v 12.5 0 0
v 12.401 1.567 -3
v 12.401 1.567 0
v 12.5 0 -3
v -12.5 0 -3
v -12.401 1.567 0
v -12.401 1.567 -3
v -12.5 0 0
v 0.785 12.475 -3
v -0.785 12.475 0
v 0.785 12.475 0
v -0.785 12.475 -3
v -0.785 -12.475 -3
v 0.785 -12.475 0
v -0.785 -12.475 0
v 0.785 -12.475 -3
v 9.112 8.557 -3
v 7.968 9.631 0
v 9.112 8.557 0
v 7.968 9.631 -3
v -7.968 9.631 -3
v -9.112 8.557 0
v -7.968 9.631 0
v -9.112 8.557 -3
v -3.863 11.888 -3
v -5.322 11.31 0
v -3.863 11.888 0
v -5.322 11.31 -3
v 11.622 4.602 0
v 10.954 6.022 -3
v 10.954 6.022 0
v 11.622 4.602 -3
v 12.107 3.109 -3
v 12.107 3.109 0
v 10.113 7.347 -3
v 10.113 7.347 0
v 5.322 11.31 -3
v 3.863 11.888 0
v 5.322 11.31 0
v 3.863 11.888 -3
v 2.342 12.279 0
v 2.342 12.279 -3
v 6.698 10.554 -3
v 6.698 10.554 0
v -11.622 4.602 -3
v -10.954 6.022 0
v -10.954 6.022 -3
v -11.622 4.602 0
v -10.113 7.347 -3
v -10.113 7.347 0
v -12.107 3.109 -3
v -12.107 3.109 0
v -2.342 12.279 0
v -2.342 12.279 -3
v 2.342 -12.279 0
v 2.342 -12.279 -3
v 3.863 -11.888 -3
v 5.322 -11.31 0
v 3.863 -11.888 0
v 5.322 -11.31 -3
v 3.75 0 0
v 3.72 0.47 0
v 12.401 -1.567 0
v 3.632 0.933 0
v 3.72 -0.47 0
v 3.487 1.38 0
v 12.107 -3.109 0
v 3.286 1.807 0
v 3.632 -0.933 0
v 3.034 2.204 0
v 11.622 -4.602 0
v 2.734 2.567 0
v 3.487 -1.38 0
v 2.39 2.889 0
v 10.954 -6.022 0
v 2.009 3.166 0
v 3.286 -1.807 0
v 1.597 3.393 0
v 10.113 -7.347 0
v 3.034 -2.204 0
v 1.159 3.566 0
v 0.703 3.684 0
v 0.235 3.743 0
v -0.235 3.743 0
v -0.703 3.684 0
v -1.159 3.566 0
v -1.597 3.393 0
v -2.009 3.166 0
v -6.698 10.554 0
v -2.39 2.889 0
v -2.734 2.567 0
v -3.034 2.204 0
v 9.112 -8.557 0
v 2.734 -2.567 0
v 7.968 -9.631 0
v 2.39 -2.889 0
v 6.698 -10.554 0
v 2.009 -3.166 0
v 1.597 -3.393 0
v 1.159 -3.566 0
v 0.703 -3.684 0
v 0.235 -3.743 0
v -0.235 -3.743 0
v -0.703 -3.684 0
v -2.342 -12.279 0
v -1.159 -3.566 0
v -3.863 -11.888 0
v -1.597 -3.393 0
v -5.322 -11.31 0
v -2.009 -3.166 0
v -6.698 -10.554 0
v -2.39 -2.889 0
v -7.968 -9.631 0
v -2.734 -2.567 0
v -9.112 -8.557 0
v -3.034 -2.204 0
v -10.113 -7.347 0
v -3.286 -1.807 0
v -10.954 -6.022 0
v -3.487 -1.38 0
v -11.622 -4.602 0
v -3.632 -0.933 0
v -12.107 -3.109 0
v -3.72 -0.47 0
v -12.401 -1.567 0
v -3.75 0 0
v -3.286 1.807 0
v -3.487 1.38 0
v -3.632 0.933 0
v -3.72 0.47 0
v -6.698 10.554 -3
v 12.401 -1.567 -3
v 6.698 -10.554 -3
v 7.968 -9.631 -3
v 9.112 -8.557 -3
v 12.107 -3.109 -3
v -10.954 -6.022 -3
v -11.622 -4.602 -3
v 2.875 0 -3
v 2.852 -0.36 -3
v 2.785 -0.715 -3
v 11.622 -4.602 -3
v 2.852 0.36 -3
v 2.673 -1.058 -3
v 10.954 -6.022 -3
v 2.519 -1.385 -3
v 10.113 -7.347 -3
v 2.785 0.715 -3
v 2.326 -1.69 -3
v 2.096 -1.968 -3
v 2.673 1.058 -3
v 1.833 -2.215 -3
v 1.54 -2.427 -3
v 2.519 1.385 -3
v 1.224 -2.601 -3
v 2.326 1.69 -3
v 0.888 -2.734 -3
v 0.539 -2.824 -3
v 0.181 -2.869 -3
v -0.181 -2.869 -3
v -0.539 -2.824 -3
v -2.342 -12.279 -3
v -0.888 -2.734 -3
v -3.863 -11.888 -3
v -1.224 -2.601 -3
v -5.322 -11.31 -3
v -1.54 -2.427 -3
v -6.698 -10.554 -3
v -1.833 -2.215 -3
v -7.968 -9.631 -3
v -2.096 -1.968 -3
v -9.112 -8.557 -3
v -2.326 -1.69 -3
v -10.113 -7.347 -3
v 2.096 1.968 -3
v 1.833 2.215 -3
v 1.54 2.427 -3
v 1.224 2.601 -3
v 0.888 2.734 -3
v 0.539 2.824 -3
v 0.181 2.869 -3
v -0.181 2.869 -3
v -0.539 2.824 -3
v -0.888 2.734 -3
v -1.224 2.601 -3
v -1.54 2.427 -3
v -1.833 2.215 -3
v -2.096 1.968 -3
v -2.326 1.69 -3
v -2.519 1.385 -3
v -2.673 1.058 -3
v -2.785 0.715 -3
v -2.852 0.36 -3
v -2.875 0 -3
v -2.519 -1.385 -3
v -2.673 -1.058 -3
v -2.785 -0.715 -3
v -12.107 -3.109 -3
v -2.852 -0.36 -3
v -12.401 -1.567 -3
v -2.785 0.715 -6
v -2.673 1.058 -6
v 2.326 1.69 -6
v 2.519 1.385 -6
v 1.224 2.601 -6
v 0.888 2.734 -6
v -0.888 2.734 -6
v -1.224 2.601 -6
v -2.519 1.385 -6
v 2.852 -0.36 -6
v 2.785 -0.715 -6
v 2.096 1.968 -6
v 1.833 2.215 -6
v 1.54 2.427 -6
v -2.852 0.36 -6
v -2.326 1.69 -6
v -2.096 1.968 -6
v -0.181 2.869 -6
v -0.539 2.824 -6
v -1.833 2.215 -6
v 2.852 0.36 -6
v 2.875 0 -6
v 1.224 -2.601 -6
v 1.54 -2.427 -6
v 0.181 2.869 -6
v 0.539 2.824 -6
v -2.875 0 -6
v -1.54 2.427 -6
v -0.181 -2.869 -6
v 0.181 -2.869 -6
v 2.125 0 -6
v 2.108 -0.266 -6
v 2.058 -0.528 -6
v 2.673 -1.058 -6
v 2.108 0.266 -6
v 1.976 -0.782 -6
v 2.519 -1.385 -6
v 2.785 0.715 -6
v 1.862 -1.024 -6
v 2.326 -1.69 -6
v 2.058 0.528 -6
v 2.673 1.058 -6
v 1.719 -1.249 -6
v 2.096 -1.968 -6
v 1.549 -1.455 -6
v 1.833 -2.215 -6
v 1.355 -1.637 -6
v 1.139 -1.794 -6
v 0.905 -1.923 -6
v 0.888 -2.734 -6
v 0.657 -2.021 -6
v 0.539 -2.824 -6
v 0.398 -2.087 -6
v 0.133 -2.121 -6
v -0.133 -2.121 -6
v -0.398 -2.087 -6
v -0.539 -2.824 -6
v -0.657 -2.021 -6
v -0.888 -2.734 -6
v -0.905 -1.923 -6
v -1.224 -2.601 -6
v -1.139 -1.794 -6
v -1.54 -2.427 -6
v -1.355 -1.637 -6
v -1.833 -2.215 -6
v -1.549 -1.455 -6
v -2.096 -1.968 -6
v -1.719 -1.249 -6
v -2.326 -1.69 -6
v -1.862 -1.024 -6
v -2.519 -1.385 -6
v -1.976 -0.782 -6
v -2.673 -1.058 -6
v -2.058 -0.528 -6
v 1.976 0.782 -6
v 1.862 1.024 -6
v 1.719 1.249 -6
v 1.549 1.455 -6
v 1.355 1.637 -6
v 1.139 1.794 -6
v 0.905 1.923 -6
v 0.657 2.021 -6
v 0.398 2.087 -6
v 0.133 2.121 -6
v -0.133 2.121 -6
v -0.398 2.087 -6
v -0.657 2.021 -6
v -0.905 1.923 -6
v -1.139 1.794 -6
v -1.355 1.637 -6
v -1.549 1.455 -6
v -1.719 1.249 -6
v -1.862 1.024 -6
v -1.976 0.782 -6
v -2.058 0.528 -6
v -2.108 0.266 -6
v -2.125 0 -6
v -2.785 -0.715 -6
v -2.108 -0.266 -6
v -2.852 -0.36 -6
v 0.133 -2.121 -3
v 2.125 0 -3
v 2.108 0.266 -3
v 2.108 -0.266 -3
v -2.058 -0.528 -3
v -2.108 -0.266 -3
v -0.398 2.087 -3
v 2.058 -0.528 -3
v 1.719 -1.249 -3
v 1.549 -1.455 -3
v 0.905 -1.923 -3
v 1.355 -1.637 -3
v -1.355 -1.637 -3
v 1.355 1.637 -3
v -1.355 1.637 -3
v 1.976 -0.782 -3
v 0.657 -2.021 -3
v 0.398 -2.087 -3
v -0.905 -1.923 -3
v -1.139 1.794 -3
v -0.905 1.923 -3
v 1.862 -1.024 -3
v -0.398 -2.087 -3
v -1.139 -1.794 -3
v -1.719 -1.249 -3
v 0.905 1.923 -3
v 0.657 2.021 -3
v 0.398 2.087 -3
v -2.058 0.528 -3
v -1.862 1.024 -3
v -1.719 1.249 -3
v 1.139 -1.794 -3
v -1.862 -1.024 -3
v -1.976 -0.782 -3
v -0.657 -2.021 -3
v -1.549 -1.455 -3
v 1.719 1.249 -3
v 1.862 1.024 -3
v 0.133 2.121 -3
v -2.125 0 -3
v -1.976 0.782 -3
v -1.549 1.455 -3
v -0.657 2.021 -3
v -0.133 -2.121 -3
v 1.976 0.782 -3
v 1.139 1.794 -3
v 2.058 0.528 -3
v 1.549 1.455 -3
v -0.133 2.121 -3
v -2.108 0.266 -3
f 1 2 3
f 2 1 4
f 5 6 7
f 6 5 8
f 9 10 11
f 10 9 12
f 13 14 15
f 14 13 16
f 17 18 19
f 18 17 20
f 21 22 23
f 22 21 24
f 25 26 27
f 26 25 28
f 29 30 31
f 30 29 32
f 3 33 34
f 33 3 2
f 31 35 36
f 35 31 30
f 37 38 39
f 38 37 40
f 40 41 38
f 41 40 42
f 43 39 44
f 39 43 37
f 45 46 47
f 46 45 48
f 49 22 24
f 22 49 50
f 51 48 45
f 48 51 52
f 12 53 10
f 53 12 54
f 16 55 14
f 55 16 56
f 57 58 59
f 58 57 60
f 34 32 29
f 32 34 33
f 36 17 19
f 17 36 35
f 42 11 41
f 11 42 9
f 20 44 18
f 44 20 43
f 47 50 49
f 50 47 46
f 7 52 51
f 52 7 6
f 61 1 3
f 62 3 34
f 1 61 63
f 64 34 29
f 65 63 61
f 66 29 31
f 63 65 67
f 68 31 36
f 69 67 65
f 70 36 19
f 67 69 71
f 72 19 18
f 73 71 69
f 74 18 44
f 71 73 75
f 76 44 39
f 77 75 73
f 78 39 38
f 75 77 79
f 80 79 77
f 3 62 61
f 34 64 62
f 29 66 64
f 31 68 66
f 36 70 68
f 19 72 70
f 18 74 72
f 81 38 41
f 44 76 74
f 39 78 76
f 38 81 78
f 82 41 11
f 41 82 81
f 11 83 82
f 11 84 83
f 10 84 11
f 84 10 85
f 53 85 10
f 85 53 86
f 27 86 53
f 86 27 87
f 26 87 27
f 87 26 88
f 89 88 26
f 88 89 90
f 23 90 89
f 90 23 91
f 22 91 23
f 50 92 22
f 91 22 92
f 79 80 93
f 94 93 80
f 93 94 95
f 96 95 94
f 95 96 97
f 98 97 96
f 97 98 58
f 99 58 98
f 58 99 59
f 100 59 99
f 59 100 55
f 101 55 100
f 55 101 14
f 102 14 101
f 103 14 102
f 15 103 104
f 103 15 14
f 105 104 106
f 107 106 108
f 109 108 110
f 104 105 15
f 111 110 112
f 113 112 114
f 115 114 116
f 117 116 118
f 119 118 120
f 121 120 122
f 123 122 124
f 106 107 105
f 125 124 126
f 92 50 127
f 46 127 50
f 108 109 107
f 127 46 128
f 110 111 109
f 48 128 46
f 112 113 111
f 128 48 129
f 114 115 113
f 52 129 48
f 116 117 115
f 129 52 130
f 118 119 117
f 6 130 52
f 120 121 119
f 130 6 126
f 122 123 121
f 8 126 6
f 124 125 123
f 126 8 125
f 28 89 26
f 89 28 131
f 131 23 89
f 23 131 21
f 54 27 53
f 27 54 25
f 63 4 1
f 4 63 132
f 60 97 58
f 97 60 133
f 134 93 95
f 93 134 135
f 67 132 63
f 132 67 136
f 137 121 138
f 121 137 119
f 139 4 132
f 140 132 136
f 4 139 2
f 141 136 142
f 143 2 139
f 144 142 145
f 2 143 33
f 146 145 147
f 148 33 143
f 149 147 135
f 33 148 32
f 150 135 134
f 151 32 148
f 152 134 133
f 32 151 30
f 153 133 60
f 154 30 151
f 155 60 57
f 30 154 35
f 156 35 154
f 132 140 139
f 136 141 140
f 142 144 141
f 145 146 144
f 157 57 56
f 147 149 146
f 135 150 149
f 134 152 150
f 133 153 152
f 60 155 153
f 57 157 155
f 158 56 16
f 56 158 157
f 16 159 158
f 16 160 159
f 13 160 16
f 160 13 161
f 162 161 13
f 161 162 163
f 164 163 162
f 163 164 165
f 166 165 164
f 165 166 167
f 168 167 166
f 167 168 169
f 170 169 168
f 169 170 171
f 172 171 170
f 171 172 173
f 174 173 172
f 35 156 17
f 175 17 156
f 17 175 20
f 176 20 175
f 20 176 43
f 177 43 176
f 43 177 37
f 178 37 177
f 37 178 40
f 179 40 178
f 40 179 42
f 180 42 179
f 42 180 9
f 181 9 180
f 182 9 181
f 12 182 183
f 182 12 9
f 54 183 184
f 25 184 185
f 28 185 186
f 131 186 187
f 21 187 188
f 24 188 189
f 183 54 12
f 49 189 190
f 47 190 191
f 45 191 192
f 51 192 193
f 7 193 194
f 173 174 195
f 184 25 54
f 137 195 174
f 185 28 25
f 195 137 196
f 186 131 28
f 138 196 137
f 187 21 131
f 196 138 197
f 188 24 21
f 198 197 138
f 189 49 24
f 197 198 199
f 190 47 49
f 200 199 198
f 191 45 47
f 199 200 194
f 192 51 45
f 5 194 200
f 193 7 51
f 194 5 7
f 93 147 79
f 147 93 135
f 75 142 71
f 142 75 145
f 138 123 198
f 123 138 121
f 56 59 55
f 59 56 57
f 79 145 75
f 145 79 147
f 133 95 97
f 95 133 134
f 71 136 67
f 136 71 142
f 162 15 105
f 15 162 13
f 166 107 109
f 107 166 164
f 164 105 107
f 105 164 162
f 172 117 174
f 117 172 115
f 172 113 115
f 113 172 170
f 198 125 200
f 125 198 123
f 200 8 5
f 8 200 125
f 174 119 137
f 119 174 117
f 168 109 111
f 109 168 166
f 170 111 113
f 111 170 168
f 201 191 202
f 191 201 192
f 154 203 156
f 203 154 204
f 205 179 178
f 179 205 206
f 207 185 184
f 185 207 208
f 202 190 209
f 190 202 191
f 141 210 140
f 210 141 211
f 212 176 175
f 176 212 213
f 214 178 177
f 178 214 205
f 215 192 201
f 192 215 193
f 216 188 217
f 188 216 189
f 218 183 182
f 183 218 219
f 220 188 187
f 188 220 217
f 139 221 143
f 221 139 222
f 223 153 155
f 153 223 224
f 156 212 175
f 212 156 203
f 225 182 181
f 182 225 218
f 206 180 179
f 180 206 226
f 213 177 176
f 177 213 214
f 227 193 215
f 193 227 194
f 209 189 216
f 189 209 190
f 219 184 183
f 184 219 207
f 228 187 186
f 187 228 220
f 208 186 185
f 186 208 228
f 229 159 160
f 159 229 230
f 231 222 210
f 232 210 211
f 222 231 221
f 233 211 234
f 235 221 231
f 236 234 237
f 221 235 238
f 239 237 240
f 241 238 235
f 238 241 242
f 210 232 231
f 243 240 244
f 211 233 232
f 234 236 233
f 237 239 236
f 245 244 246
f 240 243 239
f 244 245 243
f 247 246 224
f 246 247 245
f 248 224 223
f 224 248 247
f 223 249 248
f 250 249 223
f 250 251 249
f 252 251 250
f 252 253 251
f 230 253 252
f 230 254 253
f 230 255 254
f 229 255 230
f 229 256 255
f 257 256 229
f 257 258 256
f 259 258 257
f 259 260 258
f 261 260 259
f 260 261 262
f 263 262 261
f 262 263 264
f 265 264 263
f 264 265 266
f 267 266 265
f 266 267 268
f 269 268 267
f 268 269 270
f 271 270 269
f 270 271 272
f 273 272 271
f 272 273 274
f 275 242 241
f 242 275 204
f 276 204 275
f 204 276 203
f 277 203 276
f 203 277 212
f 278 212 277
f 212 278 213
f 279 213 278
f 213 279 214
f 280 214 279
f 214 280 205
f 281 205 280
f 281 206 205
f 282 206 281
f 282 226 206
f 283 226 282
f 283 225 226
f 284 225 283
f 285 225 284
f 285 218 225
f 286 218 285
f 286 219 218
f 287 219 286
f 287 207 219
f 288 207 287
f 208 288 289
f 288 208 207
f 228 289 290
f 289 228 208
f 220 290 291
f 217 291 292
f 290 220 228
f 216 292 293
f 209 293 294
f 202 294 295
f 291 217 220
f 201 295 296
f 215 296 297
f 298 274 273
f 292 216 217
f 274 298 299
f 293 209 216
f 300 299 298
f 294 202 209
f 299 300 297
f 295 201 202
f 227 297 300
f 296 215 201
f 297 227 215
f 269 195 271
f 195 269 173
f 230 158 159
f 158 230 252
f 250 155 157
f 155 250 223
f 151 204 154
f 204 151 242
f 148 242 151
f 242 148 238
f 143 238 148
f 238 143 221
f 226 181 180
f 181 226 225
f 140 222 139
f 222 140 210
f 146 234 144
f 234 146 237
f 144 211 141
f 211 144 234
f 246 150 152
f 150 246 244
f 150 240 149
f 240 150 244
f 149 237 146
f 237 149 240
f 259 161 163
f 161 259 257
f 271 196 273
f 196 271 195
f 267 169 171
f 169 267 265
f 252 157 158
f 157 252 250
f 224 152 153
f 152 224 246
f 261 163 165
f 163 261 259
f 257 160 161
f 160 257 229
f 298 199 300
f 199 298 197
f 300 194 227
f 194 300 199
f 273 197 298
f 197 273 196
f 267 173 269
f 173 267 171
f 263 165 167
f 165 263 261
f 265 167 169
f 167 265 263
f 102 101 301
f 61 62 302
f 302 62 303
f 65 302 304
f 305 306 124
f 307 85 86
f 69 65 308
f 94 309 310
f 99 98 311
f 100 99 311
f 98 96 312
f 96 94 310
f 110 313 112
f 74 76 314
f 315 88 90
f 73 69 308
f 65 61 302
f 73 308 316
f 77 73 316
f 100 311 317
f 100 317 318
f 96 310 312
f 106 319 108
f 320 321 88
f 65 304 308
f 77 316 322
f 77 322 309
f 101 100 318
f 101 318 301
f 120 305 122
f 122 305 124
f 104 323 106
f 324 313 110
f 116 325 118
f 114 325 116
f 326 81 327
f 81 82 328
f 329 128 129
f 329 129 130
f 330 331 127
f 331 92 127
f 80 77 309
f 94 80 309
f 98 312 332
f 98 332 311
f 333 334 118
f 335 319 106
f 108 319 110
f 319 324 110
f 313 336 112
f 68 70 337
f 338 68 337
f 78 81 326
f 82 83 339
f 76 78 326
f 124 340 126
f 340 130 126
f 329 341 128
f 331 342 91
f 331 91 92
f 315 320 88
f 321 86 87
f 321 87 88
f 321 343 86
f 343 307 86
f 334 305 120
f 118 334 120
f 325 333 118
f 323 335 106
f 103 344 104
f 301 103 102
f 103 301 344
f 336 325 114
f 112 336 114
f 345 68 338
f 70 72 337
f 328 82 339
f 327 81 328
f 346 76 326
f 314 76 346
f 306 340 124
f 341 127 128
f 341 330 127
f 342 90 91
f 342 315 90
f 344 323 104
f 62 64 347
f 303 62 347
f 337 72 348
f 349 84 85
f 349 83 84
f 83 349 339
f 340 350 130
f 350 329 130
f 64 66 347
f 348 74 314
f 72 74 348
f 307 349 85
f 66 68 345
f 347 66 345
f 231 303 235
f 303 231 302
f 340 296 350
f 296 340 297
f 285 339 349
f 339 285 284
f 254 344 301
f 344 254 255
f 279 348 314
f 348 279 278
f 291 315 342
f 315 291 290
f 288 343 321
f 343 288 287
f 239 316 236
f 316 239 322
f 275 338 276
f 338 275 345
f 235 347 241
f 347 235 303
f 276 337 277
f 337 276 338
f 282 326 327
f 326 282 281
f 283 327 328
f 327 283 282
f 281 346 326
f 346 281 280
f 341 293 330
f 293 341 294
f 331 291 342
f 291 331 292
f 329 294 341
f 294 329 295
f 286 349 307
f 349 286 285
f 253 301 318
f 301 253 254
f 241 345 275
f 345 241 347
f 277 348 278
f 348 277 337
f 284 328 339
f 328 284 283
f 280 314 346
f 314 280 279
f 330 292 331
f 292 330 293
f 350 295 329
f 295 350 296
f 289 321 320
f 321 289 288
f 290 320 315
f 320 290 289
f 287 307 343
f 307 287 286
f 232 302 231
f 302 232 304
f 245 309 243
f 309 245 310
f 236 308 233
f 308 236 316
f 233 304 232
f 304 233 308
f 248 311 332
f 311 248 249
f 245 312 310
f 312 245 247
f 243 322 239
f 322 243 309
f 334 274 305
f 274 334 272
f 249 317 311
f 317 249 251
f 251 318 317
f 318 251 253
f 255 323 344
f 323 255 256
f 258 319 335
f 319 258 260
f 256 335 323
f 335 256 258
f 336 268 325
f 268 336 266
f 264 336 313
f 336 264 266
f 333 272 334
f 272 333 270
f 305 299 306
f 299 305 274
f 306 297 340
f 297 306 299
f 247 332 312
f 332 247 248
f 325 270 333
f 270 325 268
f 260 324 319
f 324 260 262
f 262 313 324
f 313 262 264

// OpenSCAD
$fn = 50;

difference() {
	union() {
		translate(v = [0, 0, -3.0]) {
			cylinder(h = 3, r = 12.5);
		}
		#translate(v = [0, 0, -6.0]) {
			cylinder(h = 6, r = 2.875);
		}
	}
	union() {
		translate(v = [0, 0, 0]) {
			rotate(a = [0, 0, 0]) {
				difference() {
					union() {
						translate(v = [0, 0, -6.0]) {
							cylinder(h = 6, r = 2.0);
						}
						translate(v = [0, 0, -3]) {
							cylinder(h = 3, r1 = 2.125, r2 = 3.75);
						}
						translate(v = [0, 0, -6.0]) {
							cylinder(h = 6, r = 2.125);
						}
						translate(v = [0, 0, -6.0]) {
							cylinder(h = 6, r = 2.0);
						}
					}
					union();
				}
			}
		}
	}
}
